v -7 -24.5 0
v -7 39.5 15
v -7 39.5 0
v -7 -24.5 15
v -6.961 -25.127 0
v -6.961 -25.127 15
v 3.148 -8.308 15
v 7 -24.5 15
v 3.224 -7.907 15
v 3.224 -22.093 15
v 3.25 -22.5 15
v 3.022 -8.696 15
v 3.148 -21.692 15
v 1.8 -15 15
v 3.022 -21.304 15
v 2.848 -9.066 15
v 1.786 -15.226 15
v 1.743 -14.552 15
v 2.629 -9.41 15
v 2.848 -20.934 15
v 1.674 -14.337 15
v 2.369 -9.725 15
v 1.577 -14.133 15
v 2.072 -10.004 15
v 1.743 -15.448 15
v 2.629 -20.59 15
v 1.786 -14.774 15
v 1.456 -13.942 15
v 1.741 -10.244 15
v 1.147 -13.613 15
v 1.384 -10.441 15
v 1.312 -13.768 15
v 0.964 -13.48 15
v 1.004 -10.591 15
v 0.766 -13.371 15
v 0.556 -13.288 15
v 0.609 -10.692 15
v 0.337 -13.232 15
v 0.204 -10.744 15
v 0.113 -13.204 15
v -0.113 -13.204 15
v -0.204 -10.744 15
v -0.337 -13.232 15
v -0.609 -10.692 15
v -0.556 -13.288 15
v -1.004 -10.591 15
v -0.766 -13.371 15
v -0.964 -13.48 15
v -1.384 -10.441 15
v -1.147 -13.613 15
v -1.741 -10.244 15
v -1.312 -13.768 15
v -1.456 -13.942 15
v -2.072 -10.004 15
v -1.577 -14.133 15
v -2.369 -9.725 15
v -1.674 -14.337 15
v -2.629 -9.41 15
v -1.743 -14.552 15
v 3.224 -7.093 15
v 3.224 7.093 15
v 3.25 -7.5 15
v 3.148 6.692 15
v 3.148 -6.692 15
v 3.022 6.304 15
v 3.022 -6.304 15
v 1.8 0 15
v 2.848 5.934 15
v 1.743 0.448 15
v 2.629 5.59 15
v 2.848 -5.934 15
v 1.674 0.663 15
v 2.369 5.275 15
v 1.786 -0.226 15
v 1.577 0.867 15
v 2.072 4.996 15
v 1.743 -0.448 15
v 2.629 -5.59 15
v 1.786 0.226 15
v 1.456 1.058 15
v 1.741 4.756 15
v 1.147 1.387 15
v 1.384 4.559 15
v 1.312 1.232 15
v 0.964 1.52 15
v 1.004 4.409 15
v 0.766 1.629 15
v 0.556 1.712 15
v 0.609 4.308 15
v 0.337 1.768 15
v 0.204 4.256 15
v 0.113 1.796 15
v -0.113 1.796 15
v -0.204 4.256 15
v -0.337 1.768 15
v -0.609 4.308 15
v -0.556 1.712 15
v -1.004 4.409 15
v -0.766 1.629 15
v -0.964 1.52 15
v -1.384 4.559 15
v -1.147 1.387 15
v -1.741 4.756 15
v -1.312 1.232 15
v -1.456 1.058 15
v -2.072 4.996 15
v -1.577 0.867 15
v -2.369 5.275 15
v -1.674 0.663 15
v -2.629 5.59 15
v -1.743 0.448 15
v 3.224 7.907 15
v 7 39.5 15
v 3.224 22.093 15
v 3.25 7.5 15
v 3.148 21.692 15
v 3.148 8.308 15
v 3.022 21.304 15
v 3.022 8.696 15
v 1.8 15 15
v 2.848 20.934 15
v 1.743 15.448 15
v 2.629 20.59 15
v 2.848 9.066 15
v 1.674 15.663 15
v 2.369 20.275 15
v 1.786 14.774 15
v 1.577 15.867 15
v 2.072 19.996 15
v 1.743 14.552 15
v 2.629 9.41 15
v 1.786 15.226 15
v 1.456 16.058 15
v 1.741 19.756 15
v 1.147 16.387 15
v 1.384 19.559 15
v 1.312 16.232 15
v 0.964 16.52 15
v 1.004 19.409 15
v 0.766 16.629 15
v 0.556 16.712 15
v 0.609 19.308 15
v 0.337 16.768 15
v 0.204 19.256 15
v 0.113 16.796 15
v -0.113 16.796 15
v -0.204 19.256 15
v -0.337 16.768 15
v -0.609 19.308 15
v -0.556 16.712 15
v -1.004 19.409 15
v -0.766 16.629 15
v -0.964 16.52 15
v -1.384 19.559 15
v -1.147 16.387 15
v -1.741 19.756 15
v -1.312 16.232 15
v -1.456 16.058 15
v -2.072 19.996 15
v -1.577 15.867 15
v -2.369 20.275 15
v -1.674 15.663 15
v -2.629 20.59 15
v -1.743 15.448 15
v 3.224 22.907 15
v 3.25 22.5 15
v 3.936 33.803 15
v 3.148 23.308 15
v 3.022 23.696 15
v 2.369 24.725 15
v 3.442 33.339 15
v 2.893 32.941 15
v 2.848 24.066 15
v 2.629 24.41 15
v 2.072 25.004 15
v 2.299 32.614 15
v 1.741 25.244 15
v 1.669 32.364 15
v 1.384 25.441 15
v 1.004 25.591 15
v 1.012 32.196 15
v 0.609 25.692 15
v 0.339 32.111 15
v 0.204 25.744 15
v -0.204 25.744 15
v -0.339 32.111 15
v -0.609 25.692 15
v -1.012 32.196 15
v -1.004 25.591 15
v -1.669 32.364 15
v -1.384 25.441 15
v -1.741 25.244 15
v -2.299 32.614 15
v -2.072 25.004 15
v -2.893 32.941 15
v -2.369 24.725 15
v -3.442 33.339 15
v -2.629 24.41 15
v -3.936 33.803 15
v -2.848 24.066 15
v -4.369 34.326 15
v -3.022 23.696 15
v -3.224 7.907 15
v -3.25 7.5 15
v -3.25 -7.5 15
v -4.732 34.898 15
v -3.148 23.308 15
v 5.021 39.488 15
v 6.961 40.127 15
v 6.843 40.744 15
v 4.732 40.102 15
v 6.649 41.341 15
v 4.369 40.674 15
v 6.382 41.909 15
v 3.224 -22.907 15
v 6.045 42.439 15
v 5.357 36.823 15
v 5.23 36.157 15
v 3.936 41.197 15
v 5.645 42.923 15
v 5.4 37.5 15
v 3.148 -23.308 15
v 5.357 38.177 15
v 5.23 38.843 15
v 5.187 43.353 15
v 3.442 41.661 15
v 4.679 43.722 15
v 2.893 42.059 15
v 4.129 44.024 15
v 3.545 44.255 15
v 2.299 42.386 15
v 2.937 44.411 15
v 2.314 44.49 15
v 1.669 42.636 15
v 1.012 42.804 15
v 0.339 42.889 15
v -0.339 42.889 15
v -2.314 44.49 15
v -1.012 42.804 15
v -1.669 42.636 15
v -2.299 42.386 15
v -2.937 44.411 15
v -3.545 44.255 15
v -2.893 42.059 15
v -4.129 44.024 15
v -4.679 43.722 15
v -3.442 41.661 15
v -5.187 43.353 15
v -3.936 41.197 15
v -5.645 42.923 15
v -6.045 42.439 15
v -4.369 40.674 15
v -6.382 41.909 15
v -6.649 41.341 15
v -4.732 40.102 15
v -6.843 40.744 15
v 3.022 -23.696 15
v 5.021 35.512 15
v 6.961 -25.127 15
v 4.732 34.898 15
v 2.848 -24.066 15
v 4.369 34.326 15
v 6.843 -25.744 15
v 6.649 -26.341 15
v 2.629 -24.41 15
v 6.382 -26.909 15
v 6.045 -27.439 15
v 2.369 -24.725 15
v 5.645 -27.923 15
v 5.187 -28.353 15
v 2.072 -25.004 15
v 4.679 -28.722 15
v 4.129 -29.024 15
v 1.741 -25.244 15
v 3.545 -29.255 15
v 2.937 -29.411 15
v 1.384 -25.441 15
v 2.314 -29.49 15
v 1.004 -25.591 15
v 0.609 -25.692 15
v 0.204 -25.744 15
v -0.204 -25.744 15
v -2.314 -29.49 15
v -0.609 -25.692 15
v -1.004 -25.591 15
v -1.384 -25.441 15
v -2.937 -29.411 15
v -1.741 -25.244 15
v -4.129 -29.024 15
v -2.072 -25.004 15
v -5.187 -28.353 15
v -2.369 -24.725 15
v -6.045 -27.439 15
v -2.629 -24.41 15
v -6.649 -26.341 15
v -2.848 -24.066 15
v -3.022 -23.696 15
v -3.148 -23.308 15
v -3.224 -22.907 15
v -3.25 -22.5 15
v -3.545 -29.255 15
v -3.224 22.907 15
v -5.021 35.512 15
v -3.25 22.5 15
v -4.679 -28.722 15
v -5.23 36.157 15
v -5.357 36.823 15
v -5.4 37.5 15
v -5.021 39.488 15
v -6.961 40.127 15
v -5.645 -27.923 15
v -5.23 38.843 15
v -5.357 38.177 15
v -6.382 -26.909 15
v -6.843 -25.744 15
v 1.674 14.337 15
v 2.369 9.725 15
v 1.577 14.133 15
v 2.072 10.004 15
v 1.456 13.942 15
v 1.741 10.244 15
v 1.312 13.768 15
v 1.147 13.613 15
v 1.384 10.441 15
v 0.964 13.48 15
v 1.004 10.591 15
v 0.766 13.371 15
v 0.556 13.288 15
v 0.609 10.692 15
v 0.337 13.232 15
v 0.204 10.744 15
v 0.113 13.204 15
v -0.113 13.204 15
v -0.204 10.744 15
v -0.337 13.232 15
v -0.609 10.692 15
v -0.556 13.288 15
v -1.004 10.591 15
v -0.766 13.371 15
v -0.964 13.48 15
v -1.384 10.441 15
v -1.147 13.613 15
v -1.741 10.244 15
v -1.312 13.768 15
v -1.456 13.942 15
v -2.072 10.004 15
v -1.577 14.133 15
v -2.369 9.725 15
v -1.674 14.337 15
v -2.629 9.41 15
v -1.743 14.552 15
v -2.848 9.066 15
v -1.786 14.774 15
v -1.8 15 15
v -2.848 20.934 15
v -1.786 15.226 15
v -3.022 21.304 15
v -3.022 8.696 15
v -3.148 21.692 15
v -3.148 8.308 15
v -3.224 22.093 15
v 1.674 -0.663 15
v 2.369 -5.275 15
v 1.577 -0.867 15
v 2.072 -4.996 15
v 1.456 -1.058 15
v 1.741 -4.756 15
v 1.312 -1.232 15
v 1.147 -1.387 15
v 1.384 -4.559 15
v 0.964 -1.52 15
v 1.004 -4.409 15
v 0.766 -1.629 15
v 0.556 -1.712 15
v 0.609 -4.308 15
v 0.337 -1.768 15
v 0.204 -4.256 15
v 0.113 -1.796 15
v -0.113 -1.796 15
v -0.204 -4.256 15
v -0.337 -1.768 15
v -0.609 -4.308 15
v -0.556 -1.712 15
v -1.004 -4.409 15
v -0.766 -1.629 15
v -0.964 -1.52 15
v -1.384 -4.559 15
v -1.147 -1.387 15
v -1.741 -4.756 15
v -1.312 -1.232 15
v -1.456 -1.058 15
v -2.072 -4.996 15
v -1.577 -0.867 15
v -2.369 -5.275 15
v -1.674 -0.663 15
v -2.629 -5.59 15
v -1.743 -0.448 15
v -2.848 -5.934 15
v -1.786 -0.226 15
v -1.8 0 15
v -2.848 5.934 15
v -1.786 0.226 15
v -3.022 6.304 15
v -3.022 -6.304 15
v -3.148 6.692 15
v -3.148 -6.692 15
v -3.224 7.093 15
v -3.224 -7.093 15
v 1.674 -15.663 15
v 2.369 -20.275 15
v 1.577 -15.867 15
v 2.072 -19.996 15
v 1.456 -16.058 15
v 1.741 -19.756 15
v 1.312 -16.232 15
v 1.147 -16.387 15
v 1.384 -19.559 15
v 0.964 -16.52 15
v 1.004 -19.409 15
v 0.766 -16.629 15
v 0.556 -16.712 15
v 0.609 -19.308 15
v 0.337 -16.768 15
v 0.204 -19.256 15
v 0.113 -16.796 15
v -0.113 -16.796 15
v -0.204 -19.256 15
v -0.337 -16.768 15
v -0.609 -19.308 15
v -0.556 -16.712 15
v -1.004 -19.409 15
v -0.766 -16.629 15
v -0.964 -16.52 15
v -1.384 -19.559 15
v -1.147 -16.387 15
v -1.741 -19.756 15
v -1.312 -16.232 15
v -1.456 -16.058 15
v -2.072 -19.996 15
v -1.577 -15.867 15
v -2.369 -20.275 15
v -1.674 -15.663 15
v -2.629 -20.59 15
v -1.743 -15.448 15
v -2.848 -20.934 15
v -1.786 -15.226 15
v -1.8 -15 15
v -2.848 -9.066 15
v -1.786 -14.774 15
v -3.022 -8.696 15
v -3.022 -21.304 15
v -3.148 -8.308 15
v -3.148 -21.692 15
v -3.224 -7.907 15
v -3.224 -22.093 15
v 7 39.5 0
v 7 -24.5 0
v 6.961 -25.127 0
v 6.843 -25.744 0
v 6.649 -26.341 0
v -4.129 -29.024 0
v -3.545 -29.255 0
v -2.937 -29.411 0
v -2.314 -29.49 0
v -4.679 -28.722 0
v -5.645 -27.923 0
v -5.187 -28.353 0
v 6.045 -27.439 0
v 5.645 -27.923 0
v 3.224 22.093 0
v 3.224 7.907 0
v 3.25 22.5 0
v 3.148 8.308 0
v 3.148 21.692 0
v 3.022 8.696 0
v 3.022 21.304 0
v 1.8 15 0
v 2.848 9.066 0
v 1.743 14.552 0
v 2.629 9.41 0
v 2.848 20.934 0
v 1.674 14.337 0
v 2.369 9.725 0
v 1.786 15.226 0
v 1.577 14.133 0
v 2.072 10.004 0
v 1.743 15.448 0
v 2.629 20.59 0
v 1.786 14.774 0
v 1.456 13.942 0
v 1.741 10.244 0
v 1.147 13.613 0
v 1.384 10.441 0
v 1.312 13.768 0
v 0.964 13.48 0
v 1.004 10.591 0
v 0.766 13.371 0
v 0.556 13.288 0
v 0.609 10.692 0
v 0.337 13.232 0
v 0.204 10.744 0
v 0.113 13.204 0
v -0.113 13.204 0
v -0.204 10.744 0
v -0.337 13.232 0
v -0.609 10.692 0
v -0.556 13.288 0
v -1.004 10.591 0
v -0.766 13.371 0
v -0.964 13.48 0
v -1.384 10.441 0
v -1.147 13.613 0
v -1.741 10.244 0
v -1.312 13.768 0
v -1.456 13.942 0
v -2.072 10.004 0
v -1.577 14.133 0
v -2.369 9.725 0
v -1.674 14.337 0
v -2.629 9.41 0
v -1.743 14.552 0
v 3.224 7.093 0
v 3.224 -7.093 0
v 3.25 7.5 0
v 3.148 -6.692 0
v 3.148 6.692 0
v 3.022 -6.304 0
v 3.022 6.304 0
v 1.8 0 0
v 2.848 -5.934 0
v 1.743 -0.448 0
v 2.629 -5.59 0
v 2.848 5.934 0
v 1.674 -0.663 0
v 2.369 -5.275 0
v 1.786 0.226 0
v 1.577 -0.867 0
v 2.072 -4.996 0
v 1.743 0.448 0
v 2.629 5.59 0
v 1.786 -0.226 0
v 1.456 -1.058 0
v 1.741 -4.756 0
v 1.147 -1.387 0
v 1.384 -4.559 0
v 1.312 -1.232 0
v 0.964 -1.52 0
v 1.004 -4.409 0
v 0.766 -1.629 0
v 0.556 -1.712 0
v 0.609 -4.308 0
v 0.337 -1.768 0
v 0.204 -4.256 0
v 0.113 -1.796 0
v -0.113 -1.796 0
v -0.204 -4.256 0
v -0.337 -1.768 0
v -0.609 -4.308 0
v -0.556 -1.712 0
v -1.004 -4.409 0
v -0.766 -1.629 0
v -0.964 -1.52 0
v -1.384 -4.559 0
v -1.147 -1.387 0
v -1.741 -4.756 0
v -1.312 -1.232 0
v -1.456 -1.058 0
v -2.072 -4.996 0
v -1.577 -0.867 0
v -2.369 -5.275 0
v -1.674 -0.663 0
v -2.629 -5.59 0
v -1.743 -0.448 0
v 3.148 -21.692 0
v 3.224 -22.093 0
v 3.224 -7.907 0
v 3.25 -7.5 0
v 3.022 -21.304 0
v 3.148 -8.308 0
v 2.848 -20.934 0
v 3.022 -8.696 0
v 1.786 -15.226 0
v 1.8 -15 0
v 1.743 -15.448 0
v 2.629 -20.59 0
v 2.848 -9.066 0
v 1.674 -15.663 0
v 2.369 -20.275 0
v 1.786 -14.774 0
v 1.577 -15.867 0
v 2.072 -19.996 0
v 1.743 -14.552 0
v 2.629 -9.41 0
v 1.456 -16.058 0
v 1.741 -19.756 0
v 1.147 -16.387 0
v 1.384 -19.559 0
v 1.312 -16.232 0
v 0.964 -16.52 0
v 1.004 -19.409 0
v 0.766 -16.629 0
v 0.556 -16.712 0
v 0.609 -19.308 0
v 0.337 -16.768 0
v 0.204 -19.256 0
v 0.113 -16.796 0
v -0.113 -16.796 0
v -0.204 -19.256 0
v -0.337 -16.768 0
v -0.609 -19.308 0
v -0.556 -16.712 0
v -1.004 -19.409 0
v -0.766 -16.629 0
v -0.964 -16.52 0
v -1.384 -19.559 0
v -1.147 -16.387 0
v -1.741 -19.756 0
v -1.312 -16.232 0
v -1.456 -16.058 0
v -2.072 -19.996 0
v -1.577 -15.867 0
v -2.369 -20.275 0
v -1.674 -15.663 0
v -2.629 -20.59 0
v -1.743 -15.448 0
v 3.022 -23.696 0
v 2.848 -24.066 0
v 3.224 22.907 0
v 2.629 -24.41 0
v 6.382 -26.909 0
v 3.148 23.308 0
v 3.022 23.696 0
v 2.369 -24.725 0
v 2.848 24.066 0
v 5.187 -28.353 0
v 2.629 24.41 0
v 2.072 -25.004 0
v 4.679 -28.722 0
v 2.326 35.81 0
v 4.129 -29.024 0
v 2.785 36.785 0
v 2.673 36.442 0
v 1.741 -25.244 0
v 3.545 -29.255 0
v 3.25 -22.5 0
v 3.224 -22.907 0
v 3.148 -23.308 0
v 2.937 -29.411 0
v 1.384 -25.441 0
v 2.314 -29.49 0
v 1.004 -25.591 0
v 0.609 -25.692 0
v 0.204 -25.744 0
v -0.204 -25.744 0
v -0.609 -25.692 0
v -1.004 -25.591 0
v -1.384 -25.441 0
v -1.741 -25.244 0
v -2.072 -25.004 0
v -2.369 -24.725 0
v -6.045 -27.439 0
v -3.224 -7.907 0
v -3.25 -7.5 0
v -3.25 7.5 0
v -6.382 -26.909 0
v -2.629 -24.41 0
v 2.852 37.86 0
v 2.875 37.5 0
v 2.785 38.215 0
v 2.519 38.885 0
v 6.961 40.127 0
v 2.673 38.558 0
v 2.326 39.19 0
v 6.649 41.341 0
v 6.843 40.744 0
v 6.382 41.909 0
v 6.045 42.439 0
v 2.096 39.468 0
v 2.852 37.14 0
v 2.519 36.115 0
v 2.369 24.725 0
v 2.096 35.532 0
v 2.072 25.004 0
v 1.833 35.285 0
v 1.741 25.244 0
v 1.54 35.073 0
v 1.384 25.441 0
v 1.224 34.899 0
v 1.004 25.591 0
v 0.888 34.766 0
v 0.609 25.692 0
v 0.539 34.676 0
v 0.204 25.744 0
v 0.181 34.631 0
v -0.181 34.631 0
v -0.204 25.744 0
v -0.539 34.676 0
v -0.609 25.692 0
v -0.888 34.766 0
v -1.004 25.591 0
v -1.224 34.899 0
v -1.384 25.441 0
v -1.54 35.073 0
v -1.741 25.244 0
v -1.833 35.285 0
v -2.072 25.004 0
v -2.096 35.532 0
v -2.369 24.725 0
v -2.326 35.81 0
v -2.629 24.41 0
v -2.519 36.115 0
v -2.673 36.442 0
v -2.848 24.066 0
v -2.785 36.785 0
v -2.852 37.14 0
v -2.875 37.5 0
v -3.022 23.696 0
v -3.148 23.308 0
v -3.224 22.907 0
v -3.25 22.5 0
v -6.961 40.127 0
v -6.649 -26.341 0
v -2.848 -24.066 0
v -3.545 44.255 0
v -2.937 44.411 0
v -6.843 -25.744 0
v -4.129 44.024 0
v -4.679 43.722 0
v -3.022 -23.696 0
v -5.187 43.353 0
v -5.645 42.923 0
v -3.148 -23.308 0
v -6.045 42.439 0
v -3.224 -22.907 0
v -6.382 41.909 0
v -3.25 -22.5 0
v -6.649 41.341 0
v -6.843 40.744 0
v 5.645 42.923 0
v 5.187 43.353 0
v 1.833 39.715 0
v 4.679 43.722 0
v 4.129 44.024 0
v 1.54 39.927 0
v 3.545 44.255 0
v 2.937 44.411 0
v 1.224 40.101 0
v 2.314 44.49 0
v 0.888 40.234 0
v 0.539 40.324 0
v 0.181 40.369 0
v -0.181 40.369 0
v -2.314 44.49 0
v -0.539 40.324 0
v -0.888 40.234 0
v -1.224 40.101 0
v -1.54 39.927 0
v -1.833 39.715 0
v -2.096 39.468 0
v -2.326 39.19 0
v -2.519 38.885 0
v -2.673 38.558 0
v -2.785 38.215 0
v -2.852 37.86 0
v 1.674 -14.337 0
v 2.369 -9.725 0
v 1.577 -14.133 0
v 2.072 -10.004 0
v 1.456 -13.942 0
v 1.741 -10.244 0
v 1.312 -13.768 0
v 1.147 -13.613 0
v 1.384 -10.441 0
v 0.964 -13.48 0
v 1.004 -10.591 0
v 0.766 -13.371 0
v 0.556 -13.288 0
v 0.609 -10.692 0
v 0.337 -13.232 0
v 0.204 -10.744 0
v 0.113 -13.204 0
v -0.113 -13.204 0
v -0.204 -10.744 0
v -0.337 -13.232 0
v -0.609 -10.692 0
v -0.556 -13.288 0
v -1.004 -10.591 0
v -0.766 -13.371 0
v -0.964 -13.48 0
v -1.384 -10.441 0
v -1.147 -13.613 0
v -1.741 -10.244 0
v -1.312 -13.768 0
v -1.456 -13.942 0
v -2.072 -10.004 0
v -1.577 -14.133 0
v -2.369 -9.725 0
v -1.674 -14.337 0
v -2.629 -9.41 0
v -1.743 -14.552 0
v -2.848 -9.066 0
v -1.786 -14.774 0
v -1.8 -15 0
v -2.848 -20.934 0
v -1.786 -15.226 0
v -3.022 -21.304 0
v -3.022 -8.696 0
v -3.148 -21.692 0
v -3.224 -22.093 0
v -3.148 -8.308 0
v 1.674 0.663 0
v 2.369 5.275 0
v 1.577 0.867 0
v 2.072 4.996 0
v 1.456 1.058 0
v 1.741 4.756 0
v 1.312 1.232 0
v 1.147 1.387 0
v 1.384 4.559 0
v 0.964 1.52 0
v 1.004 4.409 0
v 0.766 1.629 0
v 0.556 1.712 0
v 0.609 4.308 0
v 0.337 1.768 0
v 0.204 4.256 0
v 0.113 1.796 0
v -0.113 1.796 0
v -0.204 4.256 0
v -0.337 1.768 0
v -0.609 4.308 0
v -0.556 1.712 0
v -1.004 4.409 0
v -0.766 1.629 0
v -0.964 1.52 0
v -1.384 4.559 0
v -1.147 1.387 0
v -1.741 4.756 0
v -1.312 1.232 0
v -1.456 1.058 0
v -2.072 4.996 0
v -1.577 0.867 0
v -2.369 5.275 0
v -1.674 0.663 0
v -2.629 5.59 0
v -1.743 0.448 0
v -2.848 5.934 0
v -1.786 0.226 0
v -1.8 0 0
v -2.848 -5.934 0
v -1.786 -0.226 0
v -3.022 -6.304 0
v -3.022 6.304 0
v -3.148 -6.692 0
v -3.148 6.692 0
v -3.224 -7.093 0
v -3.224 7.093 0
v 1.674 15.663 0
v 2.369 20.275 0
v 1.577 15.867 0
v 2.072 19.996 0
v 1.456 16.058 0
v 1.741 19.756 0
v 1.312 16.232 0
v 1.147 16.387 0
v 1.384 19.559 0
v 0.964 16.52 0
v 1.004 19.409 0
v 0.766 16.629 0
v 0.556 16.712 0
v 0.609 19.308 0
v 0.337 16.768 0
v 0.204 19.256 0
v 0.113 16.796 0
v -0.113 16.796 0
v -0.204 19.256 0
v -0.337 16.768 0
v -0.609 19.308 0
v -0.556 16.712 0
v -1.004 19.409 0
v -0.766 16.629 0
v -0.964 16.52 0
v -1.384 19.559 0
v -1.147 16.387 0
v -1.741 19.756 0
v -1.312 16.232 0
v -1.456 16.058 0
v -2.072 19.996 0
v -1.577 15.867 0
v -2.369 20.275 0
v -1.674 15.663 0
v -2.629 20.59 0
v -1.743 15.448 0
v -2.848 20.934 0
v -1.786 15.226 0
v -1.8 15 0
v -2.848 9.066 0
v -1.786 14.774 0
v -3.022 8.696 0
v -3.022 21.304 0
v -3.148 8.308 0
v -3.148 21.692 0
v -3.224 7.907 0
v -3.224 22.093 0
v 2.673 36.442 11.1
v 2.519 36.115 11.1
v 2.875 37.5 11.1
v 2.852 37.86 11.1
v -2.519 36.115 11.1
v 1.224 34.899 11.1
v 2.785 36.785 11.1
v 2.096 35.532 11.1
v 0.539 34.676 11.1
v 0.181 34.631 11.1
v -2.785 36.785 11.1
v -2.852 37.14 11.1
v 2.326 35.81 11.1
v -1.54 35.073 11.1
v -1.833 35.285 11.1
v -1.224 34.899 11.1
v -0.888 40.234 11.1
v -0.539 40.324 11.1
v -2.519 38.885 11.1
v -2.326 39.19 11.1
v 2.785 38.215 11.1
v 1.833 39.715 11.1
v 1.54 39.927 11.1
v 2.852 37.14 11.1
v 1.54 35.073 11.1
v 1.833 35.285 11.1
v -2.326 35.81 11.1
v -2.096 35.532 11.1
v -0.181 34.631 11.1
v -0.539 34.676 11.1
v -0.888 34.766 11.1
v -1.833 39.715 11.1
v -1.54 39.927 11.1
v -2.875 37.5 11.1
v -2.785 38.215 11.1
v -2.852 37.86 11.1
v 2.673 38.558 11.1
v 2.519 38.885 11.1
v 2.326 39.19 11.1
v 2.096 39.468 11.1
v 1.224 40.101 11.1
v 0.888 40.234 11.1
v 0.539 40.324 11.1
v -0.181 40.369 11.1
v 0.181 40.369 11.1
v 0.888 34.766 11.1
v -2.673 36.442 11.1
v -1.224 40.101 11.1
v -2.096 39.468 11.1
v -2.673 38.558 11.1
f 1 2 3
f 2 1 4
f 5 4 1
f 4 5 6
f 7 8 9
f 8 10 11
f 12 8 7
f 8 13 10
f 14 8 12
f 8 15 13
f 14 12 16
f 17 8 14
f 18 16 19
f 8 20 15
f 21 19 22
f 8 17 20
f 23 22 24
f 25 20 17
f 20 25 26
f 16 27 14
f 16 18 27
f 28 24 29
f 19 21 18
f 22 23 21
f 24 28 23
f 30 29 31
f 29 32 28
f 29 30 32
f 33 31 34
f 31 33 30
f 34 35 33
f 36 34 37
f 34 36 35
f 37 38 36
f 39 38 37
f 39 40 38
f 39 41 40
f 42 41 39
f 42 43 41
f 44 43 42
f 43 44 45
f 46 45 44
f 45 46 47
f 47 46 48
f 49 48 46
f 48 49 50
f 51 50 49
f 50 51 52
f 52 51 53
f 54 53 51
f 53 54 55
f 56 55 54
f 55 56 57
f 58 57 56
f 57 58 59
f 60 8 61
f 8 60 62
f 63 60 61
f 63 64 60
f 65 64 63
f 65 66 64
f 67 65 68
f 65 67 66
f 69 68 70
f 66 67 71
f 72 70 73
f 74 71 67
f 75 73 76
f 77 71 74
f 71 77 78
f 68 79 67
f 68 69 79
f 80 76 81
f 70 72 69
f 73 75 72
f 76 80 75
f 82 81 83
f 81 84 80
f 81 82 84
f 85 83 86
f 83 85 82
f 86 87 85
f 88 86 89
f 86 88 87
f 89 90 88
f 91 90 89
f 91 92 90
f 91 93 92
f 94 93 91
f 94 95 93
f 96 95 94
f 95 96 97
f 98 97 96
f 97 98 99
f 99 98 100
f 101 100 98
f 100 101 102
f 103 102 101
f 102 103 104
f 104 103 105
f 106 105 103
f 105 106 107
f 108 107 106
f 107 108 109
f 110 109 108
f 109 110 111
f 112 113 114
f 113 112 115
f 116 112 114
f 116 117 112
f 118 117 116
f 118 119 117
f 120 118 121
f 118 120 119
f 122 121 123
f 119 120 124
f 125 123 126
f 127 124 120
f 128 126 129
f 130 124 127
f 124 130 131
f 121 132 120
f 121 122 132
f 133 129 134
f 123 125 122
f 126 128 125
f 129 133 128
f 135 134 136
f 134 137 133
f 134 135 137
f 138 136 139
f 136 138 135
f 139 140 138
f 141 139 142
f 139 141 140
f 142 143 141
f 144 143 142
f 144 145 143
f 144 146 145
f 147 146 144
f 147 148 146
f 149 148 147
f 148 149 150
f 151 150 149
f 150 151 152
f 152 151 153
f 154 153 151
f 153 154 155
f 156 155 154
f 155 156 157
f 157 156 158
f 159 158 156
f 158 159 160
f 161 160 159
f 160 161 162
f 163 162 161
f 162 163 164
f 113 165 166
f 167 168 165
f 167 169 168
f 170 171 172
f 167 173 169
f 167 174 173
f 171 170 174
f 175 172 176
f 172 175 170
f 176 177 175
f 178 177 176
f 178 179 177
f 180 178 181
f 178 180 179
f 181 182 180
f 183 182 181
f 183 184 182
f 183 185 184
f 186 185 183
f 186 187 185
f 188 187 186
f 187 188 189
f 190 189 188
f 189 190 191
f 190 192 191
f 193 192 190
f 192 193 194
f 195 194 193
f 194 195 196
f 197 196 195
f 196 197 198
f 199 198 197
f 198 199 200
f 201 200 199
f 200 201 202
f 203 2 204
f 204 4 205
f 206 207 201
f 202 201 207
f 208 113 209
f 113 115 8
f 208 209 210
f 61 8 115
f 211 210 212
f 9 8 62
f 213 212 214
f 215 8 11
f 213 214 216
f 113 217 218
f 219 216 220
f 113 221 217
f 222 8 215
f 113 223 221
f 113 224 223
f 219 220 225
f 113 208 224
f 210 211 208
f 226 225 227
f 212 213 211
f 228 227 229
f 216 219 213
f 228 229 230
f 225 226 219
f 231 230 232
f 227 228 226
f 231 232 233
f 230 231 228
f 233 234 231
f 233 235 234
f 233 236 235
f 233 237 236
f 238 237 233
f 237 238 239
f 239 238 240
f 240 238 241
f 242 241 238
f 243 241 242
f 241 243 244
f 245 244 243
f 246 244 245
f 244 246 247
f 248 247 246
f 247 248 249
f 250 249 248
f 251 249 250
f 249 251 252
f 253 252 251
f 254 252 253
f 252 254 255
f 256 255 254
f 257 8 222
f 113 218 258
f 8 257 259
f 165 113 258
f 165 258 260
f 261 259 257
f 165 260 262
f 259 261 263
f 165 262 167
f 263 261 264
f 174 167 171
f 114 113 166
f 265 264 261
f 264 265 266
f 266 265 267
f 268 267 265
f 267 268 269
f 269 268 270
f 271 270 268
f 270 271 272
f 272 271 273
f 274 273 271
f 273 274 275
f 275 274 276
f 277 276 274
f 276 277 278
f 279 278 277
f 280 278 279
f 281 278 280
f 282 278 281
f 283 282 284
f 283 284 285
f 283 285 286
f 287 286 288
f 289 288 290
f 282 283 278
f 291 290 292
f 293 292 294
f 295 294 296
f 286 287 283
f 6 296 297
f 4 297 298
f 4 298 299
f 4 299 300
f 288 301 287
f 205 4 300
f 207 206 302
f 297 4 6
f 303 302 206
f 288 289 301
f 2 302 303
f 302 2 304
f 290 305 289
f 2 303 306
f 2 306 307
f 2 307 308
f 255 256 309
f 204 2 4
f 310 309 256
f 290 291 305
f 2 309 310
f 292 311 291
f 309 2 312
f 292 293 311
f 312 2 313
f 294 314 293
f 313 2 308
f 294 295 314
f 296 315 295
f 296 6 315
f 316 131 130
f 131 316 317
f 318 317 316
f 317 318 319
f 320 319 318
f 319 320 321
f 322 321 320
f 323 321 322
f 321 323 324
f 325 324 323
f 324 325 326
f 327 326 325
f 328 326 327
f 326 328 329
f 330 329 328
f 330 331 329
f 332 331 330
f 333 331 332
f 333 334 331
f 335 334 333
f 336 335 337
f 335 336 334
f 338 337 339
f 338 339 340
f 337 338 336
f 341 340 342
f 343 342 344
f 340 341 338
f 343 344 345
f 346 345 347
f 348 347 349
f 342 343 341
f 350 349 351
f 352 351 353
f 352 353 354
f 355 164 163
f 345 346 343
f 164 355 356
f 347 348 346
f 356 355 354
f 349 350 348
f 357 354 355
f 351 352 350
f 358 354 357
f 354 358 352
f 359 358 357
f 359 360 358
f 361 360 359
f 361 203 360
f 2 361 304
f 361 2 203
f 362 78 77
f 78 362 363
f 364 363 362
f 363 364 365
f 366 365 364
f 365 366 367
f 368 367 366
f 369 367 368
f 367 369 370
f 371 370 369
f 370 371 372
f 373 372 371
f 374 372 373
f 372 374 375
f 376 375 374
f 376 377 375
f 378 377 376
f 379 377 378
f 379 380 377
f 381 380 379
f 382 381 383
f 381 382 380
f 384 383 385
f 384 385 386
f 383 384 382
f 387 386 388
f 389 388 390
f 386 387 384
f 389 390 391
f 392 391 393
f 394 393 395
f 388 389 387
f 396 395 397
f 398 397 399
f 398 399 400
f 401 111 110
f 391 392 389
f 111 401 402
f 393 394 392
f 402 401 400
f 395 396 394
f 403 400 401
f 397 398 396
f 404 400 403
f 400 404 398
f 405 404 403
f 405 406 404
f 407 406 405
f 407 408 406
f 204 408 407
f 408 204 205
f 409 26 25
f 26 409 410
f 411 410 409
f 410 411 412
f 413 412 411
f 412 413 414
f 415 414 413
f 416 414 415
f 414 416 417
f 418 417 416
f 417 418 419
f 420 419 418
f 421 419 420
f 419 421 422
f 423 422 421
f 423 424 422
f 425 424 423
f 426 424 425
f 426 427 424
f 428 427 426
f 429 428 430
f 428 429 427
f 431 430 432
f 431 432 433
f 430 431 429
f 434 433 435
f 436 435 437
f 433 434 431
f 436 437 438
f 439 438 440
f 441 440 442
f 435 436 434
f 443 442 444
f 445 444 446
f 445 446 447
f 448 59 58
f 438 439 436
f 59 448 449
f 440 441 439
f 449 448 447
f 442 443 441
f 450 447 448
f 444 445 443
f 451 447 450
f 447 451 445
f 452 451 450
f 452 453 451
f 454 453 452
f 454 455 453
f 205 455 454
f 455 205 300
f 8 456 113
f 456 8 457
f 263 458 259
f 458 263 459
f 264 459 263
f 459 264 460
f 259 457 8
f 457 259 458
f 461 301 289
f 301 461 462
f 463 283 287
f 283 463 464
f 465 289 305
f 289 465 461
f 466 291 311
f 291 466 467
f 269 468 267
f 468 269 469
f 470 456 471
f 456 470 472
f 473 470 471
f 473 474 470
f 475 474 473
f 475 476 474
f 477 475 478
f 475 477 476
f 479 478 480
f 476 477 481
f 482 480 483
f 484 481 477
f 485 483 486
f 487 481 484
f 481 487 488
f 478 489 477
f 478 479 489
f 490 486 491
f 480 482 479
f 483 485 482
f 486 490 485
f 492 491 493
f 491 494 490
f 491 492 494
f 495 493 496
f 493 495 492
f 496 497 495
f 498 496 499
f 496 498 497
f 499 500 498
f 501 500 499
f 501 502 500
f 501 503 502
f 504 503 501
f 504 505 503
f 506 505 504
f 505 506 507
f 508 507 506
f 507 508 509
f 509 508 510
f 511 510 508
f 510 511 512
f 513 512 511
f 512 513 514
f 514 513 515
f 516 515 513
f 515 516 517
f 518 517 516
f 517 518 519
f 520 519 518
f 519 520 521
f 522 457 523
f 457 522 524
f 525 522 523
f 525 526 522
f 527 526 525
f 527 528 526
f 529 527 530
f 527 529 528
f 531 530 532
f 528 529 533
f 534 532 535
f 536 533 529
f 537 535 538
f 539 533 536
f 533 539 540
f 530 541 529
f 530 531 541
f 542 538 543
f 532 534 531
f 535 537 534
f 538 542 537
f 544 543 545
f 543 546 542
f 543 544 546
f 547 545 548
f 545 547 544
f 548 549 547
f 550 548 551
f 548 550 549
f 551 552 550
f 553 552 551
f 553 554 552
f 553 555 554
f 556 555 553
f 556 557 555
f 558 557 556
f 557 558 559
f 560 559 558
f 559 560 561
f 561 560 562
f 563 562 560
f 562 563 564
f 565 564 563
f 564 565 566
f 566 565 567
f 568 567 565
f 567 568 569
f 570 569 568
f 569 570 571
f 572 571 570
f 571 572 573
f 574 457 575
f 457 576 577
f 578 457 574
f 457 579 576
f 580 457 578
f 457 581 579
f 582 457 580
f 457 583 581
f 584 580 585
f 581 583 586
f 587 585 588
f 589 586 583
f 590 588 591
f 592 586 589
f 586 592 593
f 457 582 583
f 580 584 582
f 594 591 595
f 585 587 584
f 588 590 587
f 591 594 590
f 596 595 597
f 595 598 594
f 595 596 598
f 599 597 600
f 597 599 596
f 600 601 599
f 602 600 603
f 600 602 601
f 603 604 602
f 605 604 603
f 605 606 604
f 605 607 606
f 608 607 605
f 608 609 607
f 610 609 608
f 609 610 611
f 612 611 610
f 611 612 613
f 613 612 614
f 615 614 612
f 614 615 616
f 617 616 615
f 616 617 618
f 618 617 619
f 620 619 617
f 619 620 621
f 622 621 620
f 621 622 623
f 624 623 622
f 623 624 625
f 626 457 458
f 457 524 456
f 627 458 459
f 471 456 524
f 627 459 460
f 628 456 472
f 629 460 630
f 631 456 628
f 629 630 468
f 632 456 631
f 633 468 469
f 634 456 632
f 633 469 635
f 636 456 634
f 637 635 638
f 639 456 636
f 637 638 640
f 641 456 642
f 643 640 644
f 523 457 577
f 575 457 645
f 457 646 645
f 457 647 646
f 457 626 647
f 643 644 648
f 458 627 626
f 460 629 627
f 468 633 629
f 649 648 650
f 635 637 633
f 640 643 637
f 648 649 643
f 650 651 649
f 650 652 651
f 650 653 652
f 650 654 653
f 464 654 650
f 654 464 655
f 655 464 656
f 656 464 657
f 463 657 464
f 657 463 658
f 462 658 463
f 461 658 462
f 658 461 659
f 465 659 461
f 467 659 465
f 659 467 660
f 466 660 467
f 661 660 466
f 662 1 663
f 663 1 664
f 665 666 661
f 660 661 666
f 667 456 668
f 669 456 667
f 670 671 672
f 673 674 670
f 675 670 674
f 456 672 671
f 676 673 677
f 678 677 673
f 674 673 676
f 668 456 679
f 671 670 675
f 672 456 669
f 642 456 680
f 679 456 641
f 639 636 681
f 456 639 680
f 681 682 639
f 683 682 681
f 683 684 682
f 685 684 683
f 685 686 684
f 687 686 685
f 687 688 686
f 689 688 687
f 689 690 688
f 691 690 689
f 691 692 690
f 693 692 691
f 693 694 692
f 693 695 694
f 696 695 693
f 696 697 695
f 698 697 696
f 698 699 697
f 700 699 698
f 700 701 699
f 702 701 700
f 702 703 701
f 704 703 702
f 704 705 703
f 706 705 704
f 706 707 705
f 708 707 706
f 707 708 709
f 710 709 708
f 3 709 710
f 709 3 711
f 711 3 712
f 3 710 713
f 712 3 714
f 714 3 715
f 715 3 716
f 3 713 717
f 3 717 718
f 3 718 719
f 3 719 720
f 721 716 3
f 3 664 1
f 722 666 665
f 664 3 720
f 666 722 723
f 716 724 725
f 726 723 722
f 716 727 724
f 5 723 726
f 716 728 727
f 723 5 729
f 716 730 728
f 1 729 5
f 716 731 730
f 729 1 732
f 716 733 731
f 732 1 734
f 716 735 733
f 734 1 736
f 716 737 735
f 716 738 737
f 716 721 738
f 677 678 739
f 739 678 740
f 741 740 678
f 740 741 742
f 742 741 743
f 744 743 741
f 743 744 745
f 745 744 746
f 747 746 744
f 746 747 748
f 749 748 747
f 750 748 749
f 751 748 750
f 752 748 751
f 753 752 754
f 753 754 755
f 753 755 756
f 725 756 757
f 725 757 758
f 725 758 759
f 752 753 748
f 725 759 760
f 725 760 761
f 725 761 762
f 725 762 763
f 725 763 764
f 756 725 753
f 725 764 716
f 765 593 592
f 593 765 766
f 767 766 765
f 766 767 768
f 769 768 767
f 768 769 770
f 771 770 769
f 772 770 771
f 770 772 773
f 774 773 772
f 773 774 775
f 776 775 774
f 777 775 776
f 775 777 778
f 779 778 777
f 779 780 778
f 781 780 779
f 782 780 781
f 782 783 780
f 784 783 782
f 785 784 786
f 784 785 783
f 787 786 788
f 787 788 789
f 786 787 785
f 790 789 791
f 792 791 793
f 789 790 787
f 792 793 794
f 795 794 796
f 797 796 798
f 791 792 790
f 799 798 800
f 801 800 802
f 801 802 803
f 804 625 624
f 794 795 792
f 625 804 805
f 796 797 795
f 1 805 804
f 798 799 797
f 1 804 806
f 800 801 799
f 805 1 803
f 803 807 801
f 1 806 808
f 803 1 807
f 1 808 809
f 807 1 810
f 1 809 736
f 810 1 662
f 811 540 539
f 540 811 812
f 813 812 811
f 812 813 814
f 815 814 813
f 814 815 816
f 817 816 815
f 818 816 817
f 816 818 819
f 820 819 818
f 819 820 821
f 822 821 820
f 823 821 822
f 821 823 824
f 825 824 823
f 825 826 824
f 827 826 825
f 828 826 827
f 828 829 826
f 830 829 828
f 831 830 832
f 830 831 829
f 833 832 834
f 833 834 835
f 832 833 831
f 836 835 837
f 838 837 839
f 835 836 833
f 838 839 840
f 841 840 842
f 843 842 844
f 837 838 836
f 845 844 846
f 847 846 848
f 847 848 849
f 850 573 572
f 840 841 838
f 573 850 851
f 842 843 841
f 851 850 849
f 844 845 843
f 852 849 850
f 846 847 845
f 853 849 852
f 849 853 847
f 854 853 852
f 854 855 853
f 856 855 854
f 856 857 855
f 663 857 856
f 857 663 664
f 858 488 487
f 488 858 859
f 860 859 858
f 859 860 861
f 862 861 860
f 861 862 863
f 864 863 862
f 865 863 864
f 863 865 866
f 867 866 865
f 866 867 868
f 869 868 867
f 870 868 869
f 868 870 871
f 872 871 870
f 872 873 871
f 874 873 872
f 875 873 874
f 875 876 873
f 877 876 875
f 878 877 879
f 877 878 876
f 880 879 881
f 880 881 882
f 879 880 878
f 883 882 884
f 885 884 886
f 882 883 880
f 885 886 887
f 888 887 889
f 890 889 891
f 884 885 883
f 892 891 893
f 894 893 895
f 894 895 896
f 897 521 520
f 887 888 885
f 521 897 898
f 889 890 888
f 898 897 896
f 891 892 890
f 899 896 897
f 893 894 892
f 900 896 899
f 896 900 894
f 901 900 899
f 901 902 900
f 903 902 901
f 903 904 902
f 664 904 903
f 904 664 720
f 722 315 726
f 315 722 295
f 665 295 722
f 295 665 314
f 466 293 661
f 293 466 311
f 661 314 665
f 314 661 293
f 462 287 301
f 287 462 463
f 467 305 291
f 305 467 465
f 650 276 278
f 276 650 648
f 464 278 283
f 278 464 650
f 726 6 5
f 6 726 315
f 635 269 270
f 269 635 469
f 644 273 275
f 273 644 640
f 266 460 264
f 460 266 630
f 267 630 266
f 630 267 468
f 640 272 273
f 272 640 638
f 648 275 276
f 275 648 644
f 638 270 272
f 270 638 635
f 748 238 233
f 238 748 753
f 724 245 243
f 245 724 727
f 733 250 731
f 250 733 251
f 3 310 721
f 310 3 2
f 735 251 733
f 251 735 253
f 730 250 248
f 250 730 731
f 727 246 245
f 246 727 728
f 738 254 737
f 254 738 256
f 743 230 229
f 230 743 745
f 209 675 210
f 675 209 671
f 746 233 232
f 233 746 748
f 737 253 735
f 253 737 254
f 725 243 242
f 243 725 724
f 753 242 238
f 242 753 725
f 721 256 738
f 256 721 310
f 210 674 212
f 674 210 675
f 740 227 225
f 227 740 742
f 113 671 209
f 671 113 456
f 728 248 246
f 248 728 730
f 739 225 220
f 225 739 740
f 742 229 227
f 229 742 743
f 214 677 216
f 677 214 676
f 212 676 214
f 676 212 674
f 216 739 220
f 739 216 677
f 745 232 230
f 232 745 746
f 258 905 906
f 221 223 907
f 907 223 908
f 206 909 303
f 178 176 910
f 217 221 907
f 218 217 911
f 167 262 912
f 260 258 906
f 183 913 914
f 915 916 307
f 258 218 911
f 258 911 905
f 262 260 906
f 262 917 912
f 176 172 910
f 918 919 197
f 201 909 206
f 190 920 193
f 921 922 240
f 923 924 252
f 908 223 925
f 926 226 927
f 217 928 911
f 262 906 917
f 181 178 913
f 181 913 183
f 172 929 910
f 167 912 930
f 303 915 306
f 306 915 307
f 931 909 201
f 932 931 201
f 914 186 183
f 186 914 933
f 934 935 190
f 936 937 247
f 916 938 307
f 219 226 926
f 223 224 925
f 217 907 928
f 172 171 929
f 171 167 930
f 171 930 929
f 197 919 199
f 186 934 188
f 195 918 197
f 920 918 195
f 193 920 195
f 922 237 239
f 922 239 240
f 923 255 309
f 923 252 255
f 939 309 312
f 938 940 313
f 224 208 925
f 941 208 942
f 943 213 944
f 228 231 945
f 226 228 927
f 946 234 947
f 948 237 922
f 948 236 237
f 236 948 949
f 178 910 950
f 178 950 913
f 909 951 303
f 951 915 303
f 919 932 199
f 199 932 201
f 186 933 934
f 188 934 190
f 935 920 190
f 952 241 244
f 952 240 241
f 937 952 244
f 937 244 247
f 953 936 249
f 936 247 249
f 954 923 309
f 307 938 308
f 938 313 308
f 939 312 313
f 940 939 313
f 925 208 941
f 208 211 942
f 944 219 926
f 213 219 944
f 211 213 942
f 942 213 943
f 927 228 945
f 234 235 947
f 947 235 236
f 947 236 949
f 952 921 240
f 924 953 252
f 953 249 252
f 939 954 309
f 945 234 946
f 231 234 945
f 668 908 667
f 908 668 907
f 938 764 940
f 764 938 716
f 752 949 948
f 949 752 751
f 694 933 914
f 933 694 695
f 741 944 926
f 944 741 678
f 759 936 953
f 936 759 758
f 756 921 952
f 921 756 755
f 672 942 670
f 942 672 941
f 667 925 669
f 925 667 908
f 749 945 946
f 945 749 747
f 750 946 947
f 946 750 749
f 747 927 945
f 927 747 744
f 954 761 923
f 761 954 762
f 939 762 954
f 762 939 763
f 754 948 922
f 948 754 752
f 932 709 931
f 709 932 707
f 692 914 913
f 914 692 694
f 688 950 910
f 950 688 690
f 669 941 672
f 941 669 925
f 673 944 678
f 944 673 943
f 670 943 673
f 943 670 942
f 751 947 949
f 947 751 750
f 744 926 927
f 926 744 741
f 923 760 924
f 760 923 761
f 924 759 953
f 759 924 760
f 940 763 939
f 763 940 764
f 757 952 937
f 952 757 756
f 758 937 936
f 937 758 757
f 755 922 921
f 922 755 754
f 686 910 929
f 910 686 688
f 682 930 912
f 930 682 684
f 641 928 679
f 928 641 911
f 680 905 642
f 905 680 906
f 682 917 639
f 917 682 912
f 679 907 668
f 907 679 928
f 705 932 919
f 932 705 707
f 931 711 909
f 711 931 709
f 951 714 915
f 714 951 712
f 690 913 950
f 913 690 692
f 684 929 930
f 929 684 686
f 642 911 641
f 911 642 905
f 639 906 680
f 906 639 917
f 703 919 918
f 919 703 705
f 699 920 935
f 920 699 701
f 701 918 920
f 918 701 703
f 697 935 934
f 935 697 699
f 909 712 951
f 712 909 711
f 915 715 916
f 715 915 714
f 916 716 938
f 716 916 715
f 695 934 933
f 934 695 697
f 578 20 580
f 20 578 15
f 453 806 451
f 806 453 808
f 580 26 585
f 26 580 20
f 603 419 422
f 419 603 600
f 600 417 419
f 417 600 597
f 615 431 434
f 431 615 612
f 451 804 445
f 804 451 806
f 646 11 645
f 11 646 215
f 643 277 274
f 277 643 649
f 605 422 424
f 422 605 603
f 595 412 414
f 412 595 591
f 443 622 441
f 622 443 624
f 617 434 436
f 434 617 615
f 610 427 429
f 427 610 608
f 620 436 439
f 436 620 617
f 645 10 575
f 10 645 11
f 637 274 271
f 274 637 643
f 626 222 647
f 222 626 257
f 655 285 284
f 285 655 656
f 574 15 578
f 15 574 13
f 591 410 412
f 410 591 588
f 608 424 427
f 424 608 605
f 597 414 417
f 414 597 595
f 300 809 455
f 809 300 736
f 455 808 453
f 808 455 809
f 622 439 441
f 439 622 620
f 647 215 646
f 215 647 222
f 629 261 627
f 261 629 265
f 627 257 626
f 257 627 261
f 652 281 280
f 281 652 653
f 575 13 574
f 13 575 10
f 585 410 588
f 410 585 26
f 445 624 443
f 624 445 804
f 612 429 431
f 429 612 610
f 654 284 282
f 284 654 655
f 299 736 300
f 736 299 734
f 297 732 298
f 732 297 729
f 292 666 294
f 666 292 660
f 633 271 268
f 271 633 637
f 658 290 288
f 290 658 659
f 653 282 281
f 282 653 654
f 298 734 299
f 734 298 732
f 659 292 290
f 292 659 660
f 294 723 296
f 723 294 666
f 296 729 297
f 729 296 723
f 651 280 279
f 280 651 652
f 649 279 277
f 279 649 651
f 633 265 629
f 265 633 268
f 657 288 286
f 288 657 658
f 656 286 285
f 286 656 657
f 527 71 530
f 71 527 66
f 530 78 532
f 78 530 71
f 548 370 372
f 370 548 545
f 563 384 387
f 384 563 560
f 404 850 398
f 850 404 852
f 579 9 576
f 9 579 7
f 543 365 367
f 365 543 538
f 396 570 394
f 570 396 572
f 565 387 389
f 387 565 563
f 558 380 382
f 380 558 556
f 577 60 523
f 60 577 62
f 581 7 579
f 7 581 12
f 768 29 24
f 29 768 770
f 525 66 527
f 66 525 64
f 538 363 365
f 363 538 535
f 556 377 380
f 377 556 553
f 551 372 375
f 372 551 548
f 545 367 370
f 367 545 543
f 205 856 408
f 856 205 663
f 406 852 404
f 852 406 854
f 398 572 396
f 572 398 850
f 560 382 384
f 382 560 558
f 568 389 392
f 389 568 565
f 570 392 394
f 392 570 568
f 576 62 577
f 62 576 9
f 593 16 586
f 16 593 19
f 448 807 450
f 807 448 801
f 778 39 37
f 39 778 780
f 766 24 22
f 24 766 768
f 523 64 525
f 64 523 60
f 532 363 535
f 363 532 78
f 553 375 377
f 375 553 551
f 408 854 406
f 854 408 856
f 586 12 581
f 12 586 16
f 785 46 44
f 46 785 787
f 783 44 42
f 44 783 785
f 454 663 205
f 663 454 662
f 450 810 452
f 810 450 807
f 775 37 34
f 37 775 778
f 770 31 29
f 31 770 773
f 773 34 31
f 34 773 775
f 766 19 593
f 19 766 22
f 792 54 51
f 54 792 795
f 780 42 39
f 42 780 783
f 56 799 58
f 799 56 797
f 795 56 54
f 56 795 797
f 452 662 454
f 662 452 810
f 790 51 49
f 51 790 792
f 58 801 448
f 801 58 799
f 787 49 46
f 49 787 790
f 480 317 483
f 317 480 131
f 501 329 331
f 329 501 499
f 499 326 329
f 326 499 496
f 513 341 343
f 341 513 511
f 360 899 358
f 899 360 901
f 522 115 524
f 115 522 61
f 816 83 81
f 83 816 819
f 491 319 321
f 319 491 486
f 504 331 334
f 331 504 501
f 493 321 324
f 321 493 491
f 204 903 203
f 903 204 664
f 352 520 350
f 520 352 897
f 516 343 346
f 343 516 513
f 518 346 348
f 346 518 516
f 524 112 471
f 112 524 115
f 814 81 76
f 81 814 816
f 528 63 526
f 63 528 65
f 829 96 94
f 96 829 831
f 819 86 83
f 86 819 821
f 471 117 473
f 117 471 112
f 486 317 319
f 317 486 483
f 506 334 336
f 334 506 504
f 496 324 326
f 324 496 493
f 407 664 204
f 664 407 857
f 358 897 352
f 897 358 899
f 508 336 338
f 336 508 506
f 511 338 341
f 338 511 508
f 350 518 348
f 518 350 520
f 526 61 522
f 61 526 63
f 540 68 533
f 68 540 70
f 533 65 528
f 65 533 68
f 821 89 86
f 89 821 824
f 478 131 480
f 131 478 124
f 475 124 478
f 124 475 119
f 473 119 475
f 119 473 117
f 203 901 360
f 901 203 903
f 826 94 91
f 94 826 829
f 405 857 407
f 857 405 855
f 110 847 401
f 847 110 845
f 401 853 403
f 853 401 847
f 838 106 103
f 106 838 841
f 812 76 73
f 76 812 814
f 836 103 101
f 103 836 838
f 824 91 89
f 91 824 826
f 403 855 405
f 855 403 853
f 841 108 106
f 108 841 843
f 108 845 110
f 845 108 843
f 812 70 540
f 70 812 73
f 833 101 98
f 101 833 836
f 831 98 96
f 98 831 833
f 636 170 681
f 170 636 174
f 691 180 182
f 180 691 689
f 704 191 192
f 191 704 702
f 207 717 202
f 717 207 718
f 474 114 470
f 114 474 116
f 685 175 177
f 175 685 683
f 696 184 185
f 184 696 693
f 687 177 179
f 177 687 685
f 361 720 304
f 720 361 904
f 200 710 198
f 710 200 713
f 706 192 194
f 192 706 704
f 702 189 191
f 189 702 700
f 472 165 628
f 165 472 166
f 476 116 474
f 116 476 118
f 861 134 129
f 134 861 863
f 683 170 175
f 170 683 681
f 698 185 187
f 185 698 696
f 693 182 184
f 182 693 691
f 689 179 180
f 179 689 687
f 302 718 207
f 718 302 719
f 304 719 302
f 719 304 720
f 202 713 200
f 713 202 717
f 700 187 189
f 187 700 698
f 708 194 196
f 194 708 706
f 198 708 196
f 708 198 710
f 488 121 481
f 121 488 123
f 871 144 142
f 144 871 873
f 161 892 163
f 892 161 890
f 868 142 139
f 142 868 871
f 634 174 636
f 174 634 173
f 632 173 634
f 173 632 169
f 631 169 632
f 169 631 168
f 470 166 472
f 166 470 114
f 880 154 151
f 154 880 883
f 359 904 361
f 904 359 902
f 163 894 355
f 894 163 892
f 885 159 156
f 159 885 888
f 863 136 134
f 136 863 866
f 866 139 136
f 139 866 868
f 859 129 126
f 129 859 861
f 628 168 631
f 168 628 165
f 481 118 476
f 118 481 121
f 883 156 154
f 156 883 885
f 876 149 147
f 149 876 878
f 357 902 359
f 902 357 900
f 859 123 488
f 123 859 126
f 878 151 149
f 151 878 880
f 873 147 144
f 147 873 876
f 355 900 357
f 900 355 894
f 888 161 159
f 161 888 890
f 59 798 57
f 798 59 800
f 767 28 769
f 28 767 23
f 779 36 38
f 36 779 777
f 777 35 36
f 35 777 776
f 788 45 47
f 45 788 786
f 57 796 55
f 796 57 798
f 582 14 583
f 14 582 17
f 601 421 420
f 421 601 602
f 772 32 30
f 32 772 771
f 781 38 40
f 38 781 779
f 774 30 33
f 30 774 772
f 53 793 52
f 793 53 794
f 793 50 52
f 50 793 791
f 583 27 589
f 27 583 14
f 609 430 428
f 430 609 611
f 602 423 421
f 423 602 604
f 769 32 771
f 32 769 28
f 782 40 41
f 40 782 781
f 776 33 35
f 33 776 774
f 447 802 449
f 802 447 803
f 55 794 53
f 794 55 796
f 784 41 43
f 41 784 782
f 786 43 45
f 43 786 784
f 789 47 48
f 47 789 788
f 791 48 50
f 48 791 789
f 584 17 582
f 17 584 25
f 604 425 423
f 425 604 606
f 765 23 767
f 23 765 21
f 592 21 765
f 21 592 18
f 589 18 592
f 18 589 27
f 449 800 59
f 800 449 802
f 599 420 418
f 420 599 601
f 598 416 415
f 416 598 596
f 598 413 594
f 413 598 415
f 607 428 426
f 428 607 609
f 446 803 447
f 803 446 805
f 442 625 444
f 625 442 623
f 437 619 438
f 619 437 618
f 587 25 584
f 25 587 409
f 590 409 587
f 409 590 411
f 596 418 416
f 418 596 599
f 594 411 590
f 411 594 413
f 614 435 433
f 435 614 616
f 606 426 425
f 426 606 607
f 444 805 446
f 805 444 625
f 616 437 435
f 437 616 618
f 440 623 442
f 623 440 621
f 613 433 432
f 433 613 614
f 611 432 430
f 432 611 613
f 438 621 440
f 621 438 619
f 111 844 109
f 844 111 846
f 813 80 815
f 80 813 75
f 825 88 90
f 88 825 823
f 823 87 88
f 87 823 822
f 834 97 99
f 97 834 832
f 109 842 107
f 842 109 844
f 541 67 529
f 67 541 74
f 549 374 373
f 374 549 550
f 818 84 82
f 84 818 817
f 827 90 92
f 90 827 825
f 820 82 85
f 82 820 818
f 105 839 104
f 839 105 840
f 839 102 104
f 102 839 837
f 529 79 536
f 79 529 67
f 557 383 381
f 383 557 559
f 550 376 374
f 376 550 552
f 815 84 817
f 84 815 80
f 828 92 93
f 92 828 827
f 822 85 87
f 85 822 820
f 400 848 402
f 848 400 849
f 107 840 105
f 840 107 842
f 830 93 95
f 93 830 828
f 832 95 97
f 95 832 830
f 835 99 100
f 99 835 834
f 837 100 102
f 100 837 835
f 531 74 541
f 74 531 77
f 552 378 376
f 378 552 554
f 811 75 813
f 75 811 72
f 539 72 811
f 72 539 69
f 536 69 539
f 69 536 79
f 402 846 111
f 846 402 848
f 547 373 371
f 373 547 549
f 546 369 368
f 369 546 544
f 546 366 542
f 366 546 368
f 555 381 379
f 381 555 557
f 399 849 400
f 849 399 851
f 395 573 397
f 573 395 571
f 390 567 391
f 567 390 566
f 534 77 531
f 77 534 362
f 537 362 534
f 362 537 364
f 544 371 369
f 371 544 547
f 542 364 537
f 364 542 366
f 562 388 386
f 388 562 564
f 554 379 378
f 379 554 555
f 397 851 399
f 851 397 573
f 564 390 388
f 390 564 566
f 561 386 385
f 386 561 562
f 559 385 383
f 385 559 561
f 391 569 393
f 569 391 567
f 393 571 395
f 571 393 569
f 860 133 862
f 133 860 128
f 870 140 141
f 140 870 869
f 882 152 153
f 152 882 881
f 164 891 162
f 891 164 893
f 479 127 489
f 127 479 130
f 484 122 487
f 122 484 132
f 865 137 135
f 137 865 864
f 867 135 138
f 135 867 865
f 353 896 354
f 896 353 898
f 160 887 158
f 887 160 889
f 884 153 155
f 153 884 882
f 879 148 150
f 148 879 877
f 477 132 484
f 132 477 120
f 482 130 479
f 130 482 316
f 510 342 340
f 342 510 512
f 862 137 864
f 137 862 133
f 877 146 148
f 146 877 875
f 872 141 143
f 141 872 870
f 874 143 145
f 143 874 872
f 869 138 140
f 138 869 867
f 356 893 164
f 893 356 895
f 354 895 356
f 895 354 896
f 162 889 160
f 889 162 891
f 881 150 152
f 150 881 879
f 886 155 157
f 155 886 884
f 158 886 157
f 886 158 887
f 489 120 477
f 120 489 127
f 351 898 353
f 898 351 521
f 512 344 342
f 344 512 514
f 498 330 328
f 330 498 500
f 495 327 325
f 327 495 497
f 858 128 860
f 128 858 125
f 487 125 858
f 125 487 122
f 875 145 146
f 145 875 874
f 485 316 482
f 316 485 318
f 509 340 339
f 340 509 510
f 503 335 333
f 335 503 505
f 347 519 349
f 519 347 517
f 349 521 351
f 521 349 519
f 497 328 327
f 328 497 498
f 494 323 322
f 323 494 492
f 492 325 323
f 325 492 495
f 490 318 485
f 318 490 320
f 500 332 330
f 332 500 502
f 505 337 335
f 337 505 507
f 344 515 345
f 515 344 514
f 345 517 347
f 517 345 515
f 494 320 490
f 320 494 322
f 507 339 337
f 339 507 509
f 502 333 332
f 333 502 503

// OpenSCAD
$fn = 50;


difference() {
	union() {
		hull() {
			translate(v = [-2.0000000000, 24.5000000000, 0]) {
				cylinder(h = 15, r = 5);
			}
			translate(v = [2.0000000000, 24.5000000000, 0]) {
				cylinder(h = 15, r = 5);
			}
			translate(v = [-2.0000000000, -24.5000000000, 0]) {
				cylinder(h = 15, r = 5);
			}
			translate(v = [2.0000000000, -24.5000000000, 0]) {
				cylinder(h = 15, r = 5);
			}
		}
		translate(v = [0.0000000000, 30.0000000000, 0]) {
			hull() {
				translate(v = [-2.0000000000, 9.5000000000, 0]) {
					cylinder(h = 15, r = 5);
				}
				translate(v = [2.0000000000, 9.5000000000, 0]) {
					cylinder(h = 15, r = 5);
				}
				translate(v = [-2.0000000000, -9.5000000000, 0]) {
					cylinder(h = 15, r = 5);
				}
				translate(v = [2.0000000000, -9.5000000000, 0]) {
					cylinder(h = 15, r = 5);
				}
			}
		}
		translate(v = [0.0000000000, 30.0000000000, 0]) {
			hull() {
				translate(v = [-2.0000000000, 9.5000000000, 0]) {
					cylinder(h = 15, r = 5);
				}
				translate(v = [2.0000000000, 9.5000000000, 0]) {
					cylinder(h = 15, r = 5);
				}
				translate(v = [-2.0000000000, -9.5000000000, 0]) {
					cylinder(h = 15, r = 5);
				}
				translate(v = [2.0000000000, -9.5000000000, 0]) {
					cylinder(h = 15, r = 5);
				}
			}
		}
	}
	union() {
		translate(v = [0.0000000000, 37.5000000000, 15]) {
			rotate(a = [0, 0, 0]) {
				difference() {
					union() {
						#translate(v = [0, 0, -15.0000000000]) {
							cylinder(h = 15, r = 2.6000000000);
						}
						#translate(v = [0, 0, -3.9000000000]) {
							cylinder(h = 3.9000000000, r1 = 2.8750000000, r2 = 5.4000000000);
						}
						#translate(v = [0, 0, -15.0000000000]) {
							cylinder(h = 15, r = 2.8750000000);
						}
						#translate(v = [0, 0, -15.0000000000]) {
							cylinder(h = 15, r = 2.6000000000);
						}
					}
					union();
				}
			}
		}
		translate(v = [0.0000000000, 37.5000000000, 15]) {
			rotate(a = [0, 0, 0]) {
				difference() {
					union() {
						#translate(v = [0, 0, -15.0000000000]) {
							cylinder(h = 15, r = 2.6000000000);
						}
						#translate(v = [0, 0, -3.9000000000]) {
							cylinder(h = 3.9000000000, r1 = 2.8750000000, r2 = 5.4000000000);
						}
						#translate(v = [0, 0, -15.0000000000]) {
							cylinder(h = 15, r = 2.8750000000);
						}
						#translate(v = [0, 0, -15.0000000000]) {
							cylinder(h = 15, r = 2.6000000000);
						}
					}
					union();
				}
			}
		}
		translate(v = [0.0000000000, -22.5000000000, 0]) {
			translate(v = [0, 0, -100]) {
				cylinder(h = 200, r = 3.2500000000);
			}
		}
		translate(v = [0.0000000000, -7.5000000000, 0]) {
			translate(v = [0, 0, -100]) {
				cylinder(h = 200, r = 3.2500000000);
			}
		}
		translate(v = [0.0000000000, 7.5000000000, 0]) {
			translate(v = [0, 0, -100]) {
				cylinder(h = 200, r = 3.2500000000);
			}
		}
		translate(v = [0.0000000000, 22.5000000000, 0]) {
			translate(v = [0, 0, -100]) {
				cylinder(h = 200, r = 3.2500000000);
			}
		}
		translate(v = [0.0000000000, -22.5000000000, 0]) {
			translate(v = [0, 0, -100]) {
				cylinder(h = 200, r = 1.8000000000);
			}
		}
		translate(v = [0.0000000000, -15.0000000000, 0]) {
			translate(v = [0, 0, -100]) {
				cylinder(h = 200, r = 1.8000000000);
			}
		}
		translate(v = [0.0000000000, -7.5000000000, 0]) {
			translate(v = [0, 0, -100]) {
				cylinder(h = 200, r = 1.8000000000);
			}
		}
		translate(v = [0, 0, -100]) {
			cylinder(h = 200, r = 1.8000000000);
		}
		translate(v = [0.0000000000, 7.5000000000, 0]) {
			translate(v = [0, 0, -100]) {
				cylinder(h = 200, r = 1.8000000000);
			}
		}
		translate(v = [0.0000000000, 15.0000000000, 0]) {
			translate(v = [0, 0, -100]) {
				cylinder(h = 200, r = 1.8000000000);
			}
		}
		translate(v = [0.0000000000, 22.5000000000, 0]) {
			translate(v = [0, 0, -100]) {
				cylinder(h = 200, r = 1.8000000000);
			}
		}
	}
}
